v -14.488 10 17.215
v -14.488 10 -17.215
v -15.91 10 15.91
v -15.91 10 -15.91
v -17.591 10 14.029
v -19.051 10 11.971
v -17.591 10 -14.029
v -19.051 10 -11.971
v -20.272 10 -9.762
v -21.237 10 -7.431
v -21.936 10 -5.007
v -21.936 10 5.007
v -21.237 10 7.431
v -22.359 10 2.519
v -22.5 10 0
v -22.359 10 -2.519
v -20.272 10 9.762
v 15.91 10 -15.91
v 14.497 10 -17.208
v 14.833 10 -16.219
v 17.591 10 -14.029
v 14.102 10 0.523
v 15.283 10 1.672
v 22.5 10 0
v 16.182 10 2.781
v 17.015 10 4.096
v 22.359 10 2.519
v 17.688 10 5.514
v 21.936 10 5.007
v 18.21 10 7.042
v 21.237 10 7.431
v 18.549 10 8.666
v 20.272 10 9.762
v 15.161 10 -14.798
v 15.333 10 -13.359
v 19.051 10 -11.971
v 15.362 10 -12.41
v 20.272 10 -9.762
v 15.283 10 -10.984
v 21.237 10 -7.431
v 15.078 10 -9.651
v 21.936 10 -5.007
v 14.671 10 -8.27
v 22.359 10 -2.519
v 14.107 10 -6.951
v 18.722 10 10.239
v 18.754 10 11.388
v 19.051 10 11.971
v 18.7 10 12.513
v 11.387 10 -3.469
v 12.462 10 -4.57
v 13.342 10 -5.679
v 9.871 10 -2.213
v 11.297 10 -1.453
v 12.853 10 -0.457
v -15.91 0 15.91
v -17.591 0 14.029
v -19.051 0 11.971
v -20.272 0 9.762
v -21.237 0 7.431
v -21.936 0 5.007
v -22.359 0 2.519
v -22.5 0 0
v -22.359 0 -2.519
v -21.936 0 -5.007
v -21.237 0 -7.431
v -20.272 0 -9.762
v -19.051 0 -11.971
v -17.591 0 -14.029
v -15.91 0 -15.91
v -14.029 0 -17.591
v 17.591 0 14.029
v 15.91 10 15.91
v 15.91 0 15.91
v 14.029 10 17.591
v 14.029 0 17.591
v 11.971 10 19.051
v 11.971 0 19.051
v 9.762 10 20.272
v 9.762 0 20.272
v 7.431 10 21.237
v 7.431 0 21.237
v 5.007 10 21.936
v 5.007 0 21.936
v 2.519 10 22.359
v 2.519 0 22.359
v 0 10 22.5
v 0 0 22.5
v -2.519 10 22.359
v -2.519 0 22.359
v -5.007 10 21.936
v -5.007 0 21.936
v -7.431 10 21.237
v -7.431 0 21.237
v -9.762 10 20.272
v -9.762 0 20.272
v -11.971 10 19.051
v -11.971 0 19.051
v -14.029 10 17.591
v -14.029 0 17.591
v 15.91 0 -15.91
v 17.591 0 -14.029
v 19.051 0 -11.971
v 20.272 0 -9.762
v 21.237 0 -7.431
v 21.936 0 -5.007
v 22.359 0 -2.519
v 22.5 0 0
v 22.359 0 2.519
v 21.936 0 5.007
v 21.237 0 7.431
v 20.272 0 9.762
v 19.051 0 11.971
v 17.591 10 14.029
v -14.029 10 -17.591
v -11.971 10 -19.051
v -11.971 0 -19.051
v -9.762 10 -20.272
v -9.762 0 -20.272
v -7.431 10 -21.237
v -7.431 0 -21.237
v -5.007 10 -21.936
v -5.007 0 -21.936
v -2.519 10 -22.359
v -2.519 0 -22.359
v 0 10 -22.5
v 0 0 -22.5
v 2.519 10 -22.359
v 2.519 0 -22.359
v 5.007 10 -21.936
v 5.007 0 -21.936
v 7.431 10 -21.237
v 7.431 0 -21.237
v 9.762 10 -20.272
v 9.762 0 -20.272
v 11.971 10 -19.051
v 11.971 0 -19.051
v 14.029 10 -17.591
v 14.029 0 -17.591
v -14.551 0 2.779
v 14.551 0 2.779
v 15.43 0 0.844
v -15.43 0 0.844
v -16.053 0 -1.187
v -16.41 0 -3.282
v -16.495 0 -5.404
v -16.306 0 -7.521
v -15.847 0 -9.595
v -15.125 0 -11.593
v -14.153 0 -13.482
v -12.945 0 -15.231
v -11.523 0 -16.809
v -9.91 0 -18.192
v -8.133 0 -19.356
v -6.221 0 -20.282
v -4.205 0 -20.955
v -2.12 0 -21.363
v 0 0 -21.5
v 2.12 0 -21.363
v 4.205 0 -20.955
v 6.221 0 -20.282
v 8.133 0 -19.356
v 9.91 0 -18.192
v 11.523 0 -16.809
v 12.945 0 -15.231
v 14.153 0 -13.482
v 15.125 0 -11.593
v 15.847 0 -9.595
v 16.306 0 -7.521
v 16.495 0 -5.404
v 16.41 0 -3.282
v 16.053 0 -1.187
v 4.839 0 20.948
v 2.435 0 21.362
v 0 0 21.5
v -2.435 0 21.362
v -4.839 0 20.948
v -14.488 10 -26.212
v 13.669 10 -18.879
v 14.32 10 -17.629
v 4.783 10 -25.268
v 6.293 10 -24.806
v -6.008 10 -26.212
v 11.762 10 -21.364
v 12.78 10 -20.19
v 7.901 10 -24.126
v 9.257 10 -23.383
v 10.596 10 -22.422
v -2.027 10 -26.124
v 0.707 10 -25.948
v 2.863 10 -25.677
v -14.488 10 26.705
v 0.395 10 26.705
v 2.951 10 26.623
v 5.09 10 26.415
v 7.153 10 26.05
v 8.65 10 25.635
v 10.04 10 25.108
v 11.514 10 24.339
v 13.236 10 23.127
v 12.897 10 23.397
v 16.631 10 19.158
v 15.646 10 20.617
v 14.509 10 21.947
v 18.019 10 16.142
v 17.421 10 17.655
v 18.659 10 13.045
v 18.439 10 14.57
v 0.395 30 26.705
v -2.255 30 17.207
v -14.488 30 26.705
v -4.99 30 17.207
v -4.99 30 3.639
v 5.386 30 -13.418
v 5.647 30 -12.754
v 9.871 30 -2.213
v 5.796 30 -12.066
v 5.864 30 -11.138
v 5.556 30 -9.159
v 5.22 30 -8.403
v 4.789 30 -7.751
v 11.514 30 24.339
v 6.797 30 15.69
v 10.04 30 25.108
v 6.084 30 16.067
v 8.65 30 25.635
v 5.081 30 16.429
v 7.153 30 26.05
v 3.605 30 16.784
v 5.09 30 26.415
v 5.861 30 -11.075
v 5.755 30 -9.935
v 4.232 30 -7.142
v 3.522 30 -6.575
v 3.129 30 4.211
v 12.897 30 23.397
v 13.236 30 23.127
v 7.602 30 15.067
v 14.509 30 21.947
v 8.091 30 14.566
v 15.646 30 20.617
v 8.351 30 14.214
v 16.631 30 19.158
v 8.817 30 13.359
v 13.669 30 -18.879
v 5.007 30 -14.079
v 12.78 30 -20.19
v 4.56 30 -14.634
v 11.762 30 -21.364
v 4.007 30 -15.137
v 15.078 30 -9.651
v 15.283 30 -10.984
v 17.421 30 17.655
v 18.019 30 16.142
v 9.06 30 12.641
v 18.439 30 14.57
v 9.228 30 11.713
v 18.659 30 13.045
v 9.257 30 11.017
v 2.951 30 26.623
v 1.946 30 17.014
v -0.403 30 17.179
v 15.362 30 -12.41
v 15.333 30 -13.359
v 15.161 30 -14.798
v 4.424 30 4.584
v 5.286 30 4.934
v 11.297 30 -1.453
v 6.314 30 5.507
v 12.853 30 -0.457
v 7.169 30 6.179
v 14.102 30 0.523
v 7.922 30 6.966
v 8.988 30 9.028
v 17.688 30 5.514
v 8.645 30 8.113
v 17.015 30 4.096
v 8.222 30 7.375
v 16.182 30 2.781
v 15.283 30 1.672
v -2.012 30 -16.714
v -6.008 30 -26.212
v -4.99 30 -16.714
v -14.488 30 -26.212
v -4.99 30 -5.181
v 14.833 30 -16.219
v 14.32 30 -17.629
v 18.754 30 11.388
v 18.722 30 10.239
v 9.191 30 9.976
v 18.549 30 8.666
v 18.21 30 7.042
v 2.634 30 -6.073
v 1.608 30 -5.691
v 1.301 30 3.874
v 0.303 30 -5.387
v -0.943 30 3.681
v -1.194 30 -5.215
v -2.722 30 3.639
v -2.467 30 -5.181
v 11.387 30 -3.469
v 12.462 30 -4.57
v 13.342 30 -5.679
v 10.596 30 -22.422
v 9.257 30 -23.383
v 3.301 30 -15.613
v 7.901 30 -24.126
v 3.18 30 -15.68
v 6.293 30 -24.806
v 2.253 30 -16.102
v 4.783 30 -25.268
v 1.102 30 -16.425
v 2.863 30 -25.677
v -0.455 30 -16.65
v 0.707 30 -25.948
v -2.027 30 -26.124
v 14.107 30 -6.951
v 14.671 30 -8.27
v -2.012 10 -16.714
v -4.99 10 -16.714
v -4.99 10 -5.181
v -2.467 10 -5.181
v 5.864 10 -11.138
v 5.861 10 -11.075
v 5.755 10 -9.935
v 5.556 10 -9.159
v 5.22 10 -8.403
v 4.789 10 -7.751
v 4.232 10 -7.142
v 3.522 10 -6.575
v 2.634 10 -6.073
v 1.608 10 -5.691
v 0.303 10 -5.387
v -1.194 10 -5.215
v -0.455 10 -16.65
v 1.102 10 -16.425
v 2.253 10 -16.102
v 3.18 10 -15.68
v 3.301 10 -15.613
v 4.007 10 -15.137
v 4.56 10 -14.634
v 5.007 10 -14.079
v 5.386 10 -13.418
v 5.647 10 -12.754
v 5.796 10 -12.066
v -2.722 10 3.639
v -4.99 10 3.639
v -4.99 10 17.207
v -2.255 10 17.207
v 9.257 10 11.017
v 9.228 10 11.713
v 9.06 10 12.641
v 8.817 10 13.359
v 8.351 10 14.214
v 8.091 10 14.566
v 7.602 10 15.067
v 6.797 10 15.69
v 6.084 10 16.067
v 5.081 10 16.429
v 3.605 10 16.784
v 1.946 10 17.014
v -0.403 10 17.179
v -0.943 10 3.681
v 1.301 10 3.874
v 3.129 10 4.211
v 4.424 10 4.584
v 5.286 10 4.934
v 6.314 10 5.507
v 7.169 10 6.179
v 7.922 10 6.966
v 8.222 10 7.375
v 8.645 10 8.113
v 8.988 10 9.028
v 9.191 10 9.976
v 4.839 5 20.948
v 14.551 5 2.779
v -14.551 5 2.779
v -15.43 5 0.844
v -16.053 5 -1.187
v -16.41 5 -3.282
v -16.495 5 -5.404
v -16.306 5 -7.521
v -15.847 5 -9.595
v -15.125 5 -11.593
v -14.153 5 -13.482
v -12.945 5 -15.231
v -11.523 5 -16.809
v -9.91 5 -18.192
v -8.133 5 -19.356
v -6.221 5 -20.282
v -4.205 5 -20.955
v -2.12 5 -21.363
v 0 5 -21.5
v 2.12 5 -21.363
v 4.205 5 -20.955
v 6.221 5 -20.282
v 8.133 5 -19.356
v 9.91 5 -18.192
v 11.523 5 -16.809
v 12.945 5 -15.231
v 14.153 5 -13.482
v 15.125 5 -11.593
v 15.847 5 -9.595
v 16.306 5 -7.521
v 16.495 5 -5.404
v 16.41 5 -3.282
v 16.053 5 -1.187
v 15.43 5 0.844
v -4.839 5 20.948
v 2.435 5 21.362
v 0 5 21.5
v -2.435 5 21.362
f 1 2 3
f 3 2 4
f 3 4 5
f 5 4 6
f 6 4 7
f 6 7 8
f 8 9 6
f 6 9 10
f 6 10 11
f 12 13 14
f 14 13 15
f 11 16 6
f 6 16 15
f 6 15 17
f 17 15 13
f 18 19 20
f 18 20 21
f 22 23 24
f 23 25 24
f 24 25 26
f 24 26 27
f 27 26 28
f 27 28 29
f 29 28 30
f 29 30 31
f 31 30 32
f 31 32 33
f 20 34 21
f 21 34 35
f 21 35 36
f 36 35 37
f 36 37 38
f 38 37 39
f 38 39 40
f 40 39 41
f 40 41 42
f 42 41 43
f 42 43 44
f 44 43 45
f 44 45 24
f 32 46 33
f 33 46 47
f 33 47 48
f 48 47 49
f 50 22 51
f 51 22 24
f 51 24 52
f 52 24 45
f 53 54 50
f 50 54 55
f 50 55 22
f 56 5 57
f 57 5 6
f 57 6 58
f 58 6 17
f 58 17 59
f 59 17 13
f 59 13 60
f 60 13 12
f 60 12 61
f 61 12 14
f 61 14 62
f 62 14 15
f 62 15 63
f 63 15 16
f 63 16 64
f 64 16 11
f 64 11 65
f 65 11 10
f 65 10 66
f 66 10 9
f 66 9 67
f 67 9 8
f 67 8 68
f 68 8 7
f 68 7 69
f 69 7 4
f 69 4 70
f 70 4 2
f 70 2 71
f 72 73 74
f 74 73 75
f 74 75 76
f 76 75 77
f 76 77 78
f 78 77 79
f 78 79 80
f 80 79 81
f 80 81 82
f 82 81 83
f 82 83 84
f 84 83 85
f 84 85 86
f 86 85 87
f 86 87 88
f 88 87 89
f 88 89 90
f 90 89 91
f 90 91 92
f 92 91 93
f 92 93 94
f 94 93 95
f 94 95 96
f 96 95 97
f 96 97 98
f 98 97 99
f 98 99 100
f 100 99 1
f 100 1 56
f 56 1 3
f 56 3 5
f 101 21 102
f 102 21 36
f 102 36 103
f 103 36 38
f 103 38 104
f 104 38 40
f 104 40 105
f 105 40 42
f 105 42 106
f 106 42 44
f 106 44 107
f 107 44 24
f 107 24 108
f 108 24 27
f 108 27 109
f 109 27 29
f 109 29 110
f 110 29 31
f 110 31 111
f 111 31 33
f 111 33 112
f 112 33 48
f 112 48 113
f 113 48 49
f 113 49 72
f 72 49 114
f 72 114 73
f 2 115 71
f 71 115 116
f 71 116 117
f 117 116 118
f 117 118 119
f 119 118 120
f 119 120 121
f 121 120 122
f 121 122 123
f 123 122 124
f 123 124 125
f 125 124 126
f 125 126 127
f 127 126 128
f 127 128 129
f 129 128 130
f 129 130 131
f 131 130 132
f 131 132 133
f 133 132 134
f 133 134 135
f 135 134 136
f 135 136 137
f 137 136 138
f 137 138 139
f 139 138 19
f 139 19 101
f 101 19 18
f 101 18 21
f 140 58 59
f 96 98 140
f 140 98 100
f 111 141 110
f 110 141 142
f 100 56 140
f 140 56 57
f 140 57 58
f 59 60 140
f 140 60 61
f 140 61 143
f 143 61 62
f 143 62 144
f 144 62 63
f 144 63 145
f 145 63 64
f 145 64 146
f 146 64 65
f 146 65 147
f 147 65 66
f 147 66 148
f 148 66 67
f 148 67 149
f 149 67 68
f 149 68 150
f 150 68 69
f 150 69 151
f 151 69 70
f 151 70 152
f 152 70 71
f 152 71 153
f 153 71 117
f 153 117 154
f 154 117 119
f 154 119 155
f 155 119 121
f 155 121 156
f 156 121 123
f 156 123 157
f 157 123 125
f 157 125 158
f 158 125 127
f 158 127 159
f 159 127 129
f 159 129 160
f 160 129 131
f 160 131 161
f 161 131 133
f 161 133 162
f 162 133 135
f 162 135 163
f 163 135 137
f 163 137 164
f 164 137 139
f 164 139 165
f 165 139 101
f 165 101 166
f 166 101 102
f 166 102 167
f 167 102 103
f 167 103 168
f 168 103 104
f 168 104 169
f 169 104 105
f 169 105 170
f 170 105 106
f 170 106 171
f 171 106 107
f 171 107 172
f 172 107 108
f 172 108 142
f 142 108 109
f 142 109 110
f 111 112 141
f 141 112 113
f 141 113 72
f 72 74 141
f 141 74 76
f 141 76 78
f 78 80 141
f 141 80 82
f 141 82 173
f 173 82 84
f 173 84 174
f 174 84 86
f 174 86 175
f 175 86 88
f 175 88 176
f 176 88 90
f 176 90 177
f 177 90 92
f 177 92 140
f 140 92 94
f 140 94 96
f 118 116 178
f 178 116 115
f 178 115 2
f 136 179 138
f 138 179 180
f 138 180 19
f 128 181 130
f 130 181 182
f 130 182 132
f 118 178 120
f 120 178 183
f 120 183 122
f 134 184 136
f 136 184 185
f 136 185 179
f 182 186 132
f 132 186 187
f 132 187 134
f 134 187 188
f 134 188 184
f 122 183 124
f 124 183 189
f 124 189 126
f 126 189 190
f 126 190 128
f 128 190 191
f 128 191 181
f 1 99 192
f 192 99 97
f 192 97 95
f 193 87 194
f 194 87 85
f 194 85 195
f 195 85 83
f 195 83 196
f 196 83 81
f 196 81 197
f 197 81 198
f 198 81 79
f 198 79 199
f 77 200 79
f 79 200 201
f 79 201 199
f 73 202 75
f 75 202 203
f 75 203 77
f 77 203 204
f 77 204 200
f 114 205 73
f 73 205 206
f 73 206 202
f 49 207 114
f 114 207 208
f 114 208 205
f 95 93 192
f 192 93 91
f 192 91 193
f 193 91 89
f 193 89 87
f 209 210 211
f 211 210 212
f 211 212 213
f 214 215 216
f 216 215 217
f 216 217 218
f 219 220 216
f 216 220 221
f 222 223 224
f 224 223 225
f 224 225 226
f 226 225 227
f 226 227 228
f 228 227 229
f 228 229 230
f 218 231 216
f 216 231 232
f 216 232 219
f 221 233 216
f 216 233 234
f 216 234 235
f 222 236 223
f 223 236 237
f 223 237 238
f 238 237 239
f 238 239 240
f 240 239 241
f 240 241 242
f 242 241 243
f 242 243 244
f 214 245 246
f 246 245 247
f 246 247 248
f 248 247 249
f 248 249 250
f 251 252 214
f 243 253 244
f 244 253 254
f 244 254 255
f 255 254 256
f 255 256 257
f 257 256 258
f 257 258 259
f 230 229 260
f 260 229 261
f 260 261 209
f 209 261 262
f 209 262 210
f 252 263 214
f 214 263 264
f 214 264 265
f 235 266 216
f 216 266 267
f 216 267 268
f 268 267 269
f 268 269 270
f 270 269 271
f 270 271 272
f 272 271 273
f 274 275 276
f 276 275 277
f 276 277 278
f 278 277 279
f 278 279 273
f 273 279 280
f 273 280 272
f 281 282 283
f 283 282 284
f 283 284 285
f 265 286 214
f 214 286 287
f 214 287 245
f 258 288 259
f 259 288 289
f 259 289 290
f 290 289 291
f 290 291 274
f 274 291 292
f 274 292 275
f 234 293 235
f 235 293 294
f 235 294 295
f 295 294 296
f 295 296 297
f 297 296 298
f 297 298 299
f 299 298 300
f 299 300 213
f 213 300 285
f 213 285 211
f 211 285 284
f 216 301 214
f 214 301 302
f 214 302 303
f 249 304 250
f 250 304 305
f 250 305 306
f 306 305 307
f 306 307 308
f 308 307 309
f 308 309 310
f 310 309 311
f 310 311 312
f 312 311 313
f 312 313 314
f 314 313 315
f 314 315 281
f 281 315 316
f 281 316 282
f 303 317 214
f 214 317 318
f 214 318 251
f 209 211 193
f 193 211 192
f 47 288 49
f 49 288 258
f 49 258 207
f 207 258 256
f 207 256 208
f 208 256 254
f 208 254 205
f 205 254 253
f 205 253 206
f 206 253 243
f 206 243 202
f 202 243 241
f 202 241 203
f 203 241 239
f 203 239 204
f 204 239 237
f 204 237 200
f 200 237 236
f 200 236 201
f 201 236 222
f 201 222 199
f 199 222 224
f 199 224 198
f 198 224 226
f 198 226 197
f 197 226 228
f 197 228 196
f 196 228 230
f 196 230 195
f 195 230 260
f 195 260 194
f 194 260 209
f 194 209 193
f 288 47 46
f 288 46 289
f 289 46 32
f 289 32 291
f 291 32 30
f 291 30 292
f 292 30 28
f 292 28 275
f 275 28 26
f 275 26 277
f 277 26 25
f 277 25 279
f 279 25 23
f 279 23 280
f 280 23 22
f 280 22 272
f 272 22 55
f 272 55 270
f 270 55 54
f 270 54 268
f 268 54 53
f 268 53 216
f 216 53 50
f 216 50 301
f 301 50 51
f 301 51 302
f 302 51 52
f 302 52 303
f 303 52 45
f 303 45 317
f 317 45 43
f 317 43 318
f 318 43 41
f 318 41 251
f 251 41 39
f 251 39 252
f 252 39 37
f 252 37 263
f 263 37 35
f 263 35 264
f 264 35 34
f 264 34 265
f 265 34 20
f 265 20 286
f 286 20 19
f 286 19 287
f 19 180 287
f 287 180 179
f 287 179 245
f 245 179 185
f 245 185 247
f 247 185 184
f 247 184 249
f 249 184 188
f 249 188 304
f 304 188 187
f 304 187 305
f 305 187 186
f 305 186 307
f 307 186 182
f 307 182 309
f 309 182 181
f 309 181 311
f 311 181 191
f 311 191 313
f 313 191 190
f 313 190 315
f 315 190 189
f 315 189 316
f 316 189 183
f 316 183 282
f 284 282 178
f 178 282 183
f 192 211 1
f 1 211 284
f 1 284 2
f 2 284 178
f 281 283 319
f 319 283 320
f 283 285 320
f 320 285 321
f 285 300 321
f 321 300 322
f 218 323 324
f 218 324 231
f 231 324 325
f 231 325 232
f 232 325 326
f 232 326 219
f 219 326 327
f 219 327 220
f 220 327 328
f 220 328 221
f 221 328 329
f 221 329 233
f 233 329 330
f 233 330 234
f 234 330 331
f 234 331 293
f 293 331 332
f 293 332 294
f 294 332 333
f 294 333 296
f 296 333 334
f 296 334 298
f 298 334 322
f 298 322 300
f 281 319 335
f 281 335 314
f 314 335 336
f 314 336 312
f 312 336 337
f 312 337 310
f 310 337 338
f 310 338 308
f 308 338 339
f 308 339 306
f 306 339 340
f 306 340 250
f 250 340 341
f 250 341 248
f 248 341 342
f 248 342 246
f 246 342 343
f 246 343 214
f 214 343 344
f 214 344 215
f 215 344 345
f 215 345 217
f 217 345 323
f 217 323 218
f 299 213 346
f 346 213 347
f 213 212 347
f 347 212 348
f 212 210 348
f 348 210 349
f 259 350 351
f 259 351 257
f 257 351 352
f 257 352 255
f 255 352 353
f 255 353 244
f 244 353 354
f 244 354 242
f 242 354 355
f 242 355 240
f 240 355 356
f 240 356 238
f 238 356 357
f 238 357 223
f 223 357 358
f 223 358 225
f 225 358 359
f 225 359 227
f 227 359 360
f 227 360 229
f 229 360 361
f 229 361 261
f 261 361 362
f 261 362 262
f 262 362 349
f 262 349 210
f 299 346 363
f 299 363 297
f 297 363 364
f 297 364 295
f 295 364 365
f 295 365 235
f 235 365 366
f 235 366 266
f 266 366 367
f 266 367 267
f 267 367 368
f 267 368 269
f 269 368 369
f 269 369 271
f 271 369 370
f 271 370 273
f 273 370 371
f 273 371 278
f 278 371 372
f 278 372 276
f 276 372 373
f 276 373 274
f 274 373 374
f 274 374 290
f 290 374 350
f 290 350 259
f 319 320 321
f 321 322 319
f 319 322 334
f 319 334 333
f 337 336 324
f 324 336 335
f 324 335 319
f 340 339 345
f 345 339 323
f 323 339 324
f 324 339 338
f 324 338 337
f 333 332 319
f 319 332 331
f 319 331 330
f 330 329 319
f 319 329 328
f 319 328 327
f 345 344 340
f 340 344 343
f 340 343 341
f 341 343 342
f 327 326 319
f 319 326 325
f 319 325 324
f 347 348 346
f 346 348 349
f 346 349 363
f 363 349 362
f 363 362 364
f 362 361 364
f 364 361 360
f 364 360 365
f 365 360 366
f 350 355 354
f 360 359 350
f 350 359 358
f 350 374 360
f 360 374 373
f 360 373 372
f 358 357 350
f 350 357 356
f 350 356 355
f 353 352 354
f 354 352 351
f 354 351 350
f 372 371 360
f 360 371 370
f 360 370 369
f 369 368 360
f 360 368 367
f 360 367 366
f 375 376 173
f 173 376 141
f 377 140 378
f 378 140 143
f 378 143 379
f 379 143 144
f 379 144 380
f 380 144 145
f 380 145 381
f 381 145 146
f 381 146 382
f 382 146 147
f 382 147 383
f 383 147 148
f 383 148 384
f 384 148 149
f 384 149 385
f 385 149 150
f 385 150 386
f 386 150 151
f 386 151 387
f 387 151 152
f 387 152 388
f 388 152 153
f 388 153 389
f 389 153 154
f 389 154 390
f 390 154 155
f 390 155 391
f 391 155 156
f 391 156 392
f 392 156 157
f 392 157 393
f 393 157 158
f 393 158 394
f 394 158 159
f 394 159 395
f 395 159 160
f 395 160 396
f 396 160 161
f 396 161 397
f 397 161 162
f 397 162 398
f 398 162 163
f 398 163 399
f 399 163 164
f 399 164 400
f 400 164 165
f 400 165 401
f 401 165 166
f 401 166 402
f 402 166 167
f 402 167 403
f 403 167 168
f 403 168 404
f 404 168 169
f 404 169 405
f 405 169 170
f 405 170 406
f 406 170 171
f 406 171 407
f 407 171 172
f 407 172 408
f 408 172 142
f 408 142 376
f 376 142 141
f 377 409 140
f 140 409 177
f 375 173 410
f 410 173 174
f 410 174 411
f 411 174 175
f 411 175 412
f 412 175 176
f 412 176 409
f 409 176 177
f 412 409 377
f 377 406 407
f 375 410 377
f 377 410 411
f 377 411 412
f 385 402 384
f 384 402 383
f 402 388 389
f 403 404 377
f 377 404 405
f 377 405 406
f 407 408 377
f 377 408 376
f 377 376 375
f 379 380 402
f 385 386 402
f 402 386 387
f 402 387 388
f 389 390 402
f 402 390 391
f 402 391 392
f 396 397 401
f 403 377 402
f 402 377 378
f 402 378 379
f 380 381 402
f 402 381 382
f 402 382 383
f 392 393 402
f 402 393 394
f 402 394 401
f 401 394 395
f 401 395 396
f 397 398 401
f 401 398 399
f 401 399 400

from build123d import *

# Parameters (mm, degrees)
SKETCH1_R           = 22.5
BOSS_EXTRUDE1_DEPTH = 10
BOSS_EXTRUDE2_DEPTH = 20
SKETCH3_R           = 16.5
CUT_EXTRUDE2_DEPTH  = 5


with BuildPart() as part:
    # Sketch1 → Boss-Extrude1 (new body)
    with BuildSketch(Plane(origin=(0, 0, 0), x_dir=(1, 0, 0), z_dir=(0, 1, 0))):
        with Locations(Location((0, 0, 0), (0, 0, 270))):
            Circle(SKETCH1_R)
    extrude(amount=BOSS_EXTRUDE1_DEPTH)

    # Sketch2 → Boss-Extrude2 (add)
    with BuildSketch(Plane(origin=(0, 10, 0), x_dir=(1, 0, 0), z_dir=(0, 1, 0))):
        with BuildLine():
            Line((-14.488149335, -26.70508671), (-14.488149335, 26.211579956))
            Line((-14.488149335, 26.211579956), (-6.007914293, 26.211579956))
            add(Edge.make_bspline(
                [(-6.007914293, 26.211579956), (-5.414244815, 26.211647709), (-4.265505631, 26.211778808), (-2.608174782, 26.15357879), (-1.071140386, 26.078290547), (0.340706119, 25.99406051), (1.629767793, 25.848915327), (2.794084408, 25.69594816), (3.835982274, 25.511479183), (4.480131109, 25.346004797), (4.783184799, 25.268153808)],
                knots=[0, 0, 0, 0, 1.311965854, 2.538629056, 3.664479157, 4.713267157, 5.663616078, 6.530575999, 7.308677837, 8, 8, 8, 8], degree=3))
            add(Edge.make_bspline(
                [(4.783184799, 25.268153808), (5.181125063, 25.158343602), (5.962011612, 24.942860725), (7.080490347, 24.507683744), (8.141523447, 24.023953675), (9.143815418, 23.472108139), (10.08121179, 22.845484813), (10.950150136, 22.139110625), (11.769371306, 21.381339407), (12.509786627, 20.551052288), (13.179000085, 19.673700144), (13.760426595, 18.749512867), (14.265611712, 17.792621882), (14.669892129, 16.790985354), (14.974509828, 15.749216088), (15.197305942, 14.671762602), (15.341707994, 13.555215567), (15.355352093, 12.795592125), (15.362278015, 12.409997424)],
                knots=[0, 0, 0, 0, 1.099996261, 2.158545794, 3.195537121, 4.207578794, 5.205712374, 6.197378256, 7.190519799, 8.17788031, 9.159561366, 10.129234751, 11.085776129, 12.040971148, 13.00380137, 13.975669004, 14.972423361, 16, 16, 16, 16], degree=3))
            add(Edge.make_bspline(
                [(15.362278015, 12.409997424), (15.344168787, 11.914609447), (15.308522997, 10.939499081), (15.080815259, 9.507238371), (14.653827774, 8.153546136), (14.095125035, 6.85347434), (13.335463983, 5.611872259), (12.370841368, 4.429330241), (11.216880916, 3.269436044), (10.331729546, 2.574157712), (9.871325825, 2.212514786)],
                knots=[0, 0, 0, 0, 0.986156485, 1.941127874, 2.875419072, 3.804401753, 4.751181392, 5.761612777, 6.835722519, 8, 8, 8, 8], degree=3))
            add(Edge.make_bspline(
                [(9.871325825, 2.212514786), (10.244414913, 2.022056041), (10.975939394, 1.648619138), (12.014489248, 1.034800345), (12.976073045, 0.381926211), (13.865002238, -0.296867174), (14.662630517, -1.030354847), (15.401893295, -1.77627224), (16.046319182, -2.577357317), (16.622584233, -3.40505788), (17.123464449, -4.271359131), (17.559675885, -5.174798081), (17.928128038, -6.118461074), (18.240142851, -7.09754563), (18.472843581, -8.115419342), (18.624569406, -9.172446243), (18.740740181, -10.265021335), (18.749777175, -11.009256203), (18.754372032, -11.387662164)],
                knots=[0, 0, 0, 0, 1.164658916, 2.283573913, 3.35186032, 4.395461096, 5.390182219, 6.362969632, 7.312859996, 8.245001507, 9.165155236, 10.092416118, 11.032087915, 11.979892451, 12.947605196, 13.931445124, 14.948243989, 16, 16, 16, 16], degree=3))
            add(Edge.make_bspline(
                [(18.754372032, -11.387662164), (18.724554483, -12.110395914), (18.665709669, -13.536708072), (18.235465105, -15.630861893), (17.48955774, -17.616309656), (16.487957959, -19.48516034), (15.25379432, -21.183313786), (13.834860053, -22.670881463), (12.245440572, -23.930074476), (10.779008994, -24.779932076), (9.510661162, -25.350265997), (8.46011235, -25.702882393), (7.331845194, -26.029545689), (6.105192549, -26.258935401), (4.802391955, -26.468898089), (3.410741024, -26.598533402), (1.932840727, -26.686384059), (0.917754918, -26.698726455), (0.394663165, -26.70508671)],
                knots=[0, 0, 0, 0, 1.284142165, 2.534249414, 3.780121997, 5.041676246, 6.291546858, 7.49970053, 8.684500223, 9.883330709, 10.50184324, 11.153274765, 11.851151195, 12.587658647, 13.369265475, 14.195992086, 15.070362669, 16, 16, 16, 16], degree=3))
            Line((0.394663165, -26.70508671), (-14.488149335, -26.70508671))
        make_face()
        with BuildLine():
            Line((-4.990286087, 16.713716709), (-4.990286087, 5.180597051))
            Line((-4.990286087, 5.180597051), (-2.467416162, 5.180597051))
            add(Edge.make_bspline(
                [(-2.467416162, 5.180597051), (-2.124535473, 5.1835871), (-1.462625052, 5.189359209), (-0.50656566, 5.263701973), (0.382415177, 5.390535346), (1.200945746, 5.567499807), (1.956650957, 5.79221887), (2.644703146, 6.062604299), (3.262077073, 6.392503912), (3.979322786, 6.883903943), (4.737503228, 7.607021089), (5.404920943, 8.65171363), (5.798025521, 9.853106078), (5.841806769, 10.700421057), (5.864414767, 11.137962168)],
                knots=[0, 0, 0, 0, 1.065314748, 2.056525647, 2.977365736, 3.853934255, 4.656397591, 5.425096493, 6.14721249, 6.826394842, 8.123232004, 9.372140726, 10.643011755, 12, 12, 12, 12], degree=3))
            add(Edge.make_bspline(
                [(5.864414767, 11.137962168), (5.84632423, 11.547792116), (5.811346902, 12.340181849), (5.415541135, 13.452767604), (4.800776528, 14.438746288), (4.074960502, 15.113568064), (3.391463676, 15.574451442), (2.80621175, 15.87792352), (2.163853815, 16.149588622), (1.451954509, 16.357310381), (0.674579167, 16.513177474), (-0.164496065, 16.627643188), (-1.06671888, 16.705553423), (-1.689886099, 16.710937246), (-2.011603529, 16.713716709)],
                knots=[0, 0, 0, 0, 1.347982417, 2.606269829, 3.849316587, 5.153353503, 5.842674298, 6.568177932, 7.326619318, 8.142485038, 9.012069166, 9.942760135, 10.937925643, 12, 12, 12, 12], degree=3))
            Line((-2.011603529, 16.713716709), (-4.990286087, 16.713716709))
        make_face(mode=Mode.SUBTRACT)
        with BuildLine():
            Line((-4.990286087, -3.638847394), (-4.990286087, -17.207223462))
            Line((-4.990286087, -17.207223462), (-2.255410286, -17.207223462))
            add(Edge.make_bspline(
                [(-2.255410286, -17.207223462), (-1.714721858, -17.204134529), (-0.675180886, -17.198195671), (0.813959715, -17.126440131), (2.167960807, -16.997113416), (3.383234797, -16.835659429), (4.461643108, -16.61691453), (5.399540462, -16.338808424), (6.209788904, -16.032843269), (6.887530146, -15.654939974), (7.441205914, -15.215154252), (7.940840245, -14.76568268), (8.348210945, -14.247174757), (8.670530245, -13.681888592), (8.94949703, -13.0838663), (9.117750095, -12.429755326), (9.245852073, -11.738941952), (9.252901868, -11.26112128), (9.256508784, -11.016651881)],
                knots=[0, 0, 0, 0, 1.753078804, 3.370512758, 4.83203934, 6.162291463, 7.344201807, 8.395507345, 9.331626367, 10.147333109, 10.898971645, 11.62040215, 12.321813352, 13.025280112, 13.727906689, 14.453419512, 15.208716525, 16, 16, 16, 16], degree=3))
            add(Edge.make_bspline(
                [(9.256508784, -11.016651881), (9.248554499, -10.737097279), (9.233061691, -10.192600118), (9.106531742, -9.396759406), (8.876585491, -8.653789298), (8.58695697, -7.944691045), (8.183923494, -7.294852835), (7.704931981, -6.681786232), (7.126187955, -6.126251562), (6.475356533, -5.594648013), (5.716226117, -5.129200305), (4.848440543, -4.725341973), (3.867285527, -4.388054368), (2.769721839, -4.119505755), (1.560561113, -3.891592259), (0.230977803, -3.755502742), (-1.207954859, -3.654286988), (-2.205734185, -3.644110867), (-2.721823214, -3.638847394)],
                knots=[0, 0, 0, 0, 0.845221588, 1.646264278, 2.427170338, 3.19324141, 3.95557735, 4.731569926, 5.540061037, 6.376114724, 7.268642756, 8.224665384, 9.265483498, 10.400594375, 11.639216012, 12.983232105, 14.439614077, 16, 16, 16, 16], degree=3))
            Line((-2.721823214, -3.638847394), (-4.990286087, -3.638847394))
        make_face(mode=Mode.SUBTRACT)
    extrude(amount=BOSS_EXTRUDE2_DEPTH)

    # Sketch3 → Cut-Extrude2 (cut)
    with BuildSketch(Plane.XZ):
        with BuildLine():
            ThreePointArc((-14.551420086, 2.778571429), (0, 11.5), (14.551420086, 2.778571429))
            Line((14.551420086, 2.778571429), (4.83856504, 20.948467447))
            ThreePointArc((4.83856504, 20.948467447), (0, 21.5), (-4.83856504, 20.948467447))
            Line((-4.83856504, 20.948467447), (-14.551420086, 2.778571429))
        make_face()
        with Locations((0, -5)):
            Circle(SKETCH3_R)
    extrude(amount=-CUT_EXTRUDE2_DEPTH, mode=Mode.SUBTRACT)


solid = part.part
